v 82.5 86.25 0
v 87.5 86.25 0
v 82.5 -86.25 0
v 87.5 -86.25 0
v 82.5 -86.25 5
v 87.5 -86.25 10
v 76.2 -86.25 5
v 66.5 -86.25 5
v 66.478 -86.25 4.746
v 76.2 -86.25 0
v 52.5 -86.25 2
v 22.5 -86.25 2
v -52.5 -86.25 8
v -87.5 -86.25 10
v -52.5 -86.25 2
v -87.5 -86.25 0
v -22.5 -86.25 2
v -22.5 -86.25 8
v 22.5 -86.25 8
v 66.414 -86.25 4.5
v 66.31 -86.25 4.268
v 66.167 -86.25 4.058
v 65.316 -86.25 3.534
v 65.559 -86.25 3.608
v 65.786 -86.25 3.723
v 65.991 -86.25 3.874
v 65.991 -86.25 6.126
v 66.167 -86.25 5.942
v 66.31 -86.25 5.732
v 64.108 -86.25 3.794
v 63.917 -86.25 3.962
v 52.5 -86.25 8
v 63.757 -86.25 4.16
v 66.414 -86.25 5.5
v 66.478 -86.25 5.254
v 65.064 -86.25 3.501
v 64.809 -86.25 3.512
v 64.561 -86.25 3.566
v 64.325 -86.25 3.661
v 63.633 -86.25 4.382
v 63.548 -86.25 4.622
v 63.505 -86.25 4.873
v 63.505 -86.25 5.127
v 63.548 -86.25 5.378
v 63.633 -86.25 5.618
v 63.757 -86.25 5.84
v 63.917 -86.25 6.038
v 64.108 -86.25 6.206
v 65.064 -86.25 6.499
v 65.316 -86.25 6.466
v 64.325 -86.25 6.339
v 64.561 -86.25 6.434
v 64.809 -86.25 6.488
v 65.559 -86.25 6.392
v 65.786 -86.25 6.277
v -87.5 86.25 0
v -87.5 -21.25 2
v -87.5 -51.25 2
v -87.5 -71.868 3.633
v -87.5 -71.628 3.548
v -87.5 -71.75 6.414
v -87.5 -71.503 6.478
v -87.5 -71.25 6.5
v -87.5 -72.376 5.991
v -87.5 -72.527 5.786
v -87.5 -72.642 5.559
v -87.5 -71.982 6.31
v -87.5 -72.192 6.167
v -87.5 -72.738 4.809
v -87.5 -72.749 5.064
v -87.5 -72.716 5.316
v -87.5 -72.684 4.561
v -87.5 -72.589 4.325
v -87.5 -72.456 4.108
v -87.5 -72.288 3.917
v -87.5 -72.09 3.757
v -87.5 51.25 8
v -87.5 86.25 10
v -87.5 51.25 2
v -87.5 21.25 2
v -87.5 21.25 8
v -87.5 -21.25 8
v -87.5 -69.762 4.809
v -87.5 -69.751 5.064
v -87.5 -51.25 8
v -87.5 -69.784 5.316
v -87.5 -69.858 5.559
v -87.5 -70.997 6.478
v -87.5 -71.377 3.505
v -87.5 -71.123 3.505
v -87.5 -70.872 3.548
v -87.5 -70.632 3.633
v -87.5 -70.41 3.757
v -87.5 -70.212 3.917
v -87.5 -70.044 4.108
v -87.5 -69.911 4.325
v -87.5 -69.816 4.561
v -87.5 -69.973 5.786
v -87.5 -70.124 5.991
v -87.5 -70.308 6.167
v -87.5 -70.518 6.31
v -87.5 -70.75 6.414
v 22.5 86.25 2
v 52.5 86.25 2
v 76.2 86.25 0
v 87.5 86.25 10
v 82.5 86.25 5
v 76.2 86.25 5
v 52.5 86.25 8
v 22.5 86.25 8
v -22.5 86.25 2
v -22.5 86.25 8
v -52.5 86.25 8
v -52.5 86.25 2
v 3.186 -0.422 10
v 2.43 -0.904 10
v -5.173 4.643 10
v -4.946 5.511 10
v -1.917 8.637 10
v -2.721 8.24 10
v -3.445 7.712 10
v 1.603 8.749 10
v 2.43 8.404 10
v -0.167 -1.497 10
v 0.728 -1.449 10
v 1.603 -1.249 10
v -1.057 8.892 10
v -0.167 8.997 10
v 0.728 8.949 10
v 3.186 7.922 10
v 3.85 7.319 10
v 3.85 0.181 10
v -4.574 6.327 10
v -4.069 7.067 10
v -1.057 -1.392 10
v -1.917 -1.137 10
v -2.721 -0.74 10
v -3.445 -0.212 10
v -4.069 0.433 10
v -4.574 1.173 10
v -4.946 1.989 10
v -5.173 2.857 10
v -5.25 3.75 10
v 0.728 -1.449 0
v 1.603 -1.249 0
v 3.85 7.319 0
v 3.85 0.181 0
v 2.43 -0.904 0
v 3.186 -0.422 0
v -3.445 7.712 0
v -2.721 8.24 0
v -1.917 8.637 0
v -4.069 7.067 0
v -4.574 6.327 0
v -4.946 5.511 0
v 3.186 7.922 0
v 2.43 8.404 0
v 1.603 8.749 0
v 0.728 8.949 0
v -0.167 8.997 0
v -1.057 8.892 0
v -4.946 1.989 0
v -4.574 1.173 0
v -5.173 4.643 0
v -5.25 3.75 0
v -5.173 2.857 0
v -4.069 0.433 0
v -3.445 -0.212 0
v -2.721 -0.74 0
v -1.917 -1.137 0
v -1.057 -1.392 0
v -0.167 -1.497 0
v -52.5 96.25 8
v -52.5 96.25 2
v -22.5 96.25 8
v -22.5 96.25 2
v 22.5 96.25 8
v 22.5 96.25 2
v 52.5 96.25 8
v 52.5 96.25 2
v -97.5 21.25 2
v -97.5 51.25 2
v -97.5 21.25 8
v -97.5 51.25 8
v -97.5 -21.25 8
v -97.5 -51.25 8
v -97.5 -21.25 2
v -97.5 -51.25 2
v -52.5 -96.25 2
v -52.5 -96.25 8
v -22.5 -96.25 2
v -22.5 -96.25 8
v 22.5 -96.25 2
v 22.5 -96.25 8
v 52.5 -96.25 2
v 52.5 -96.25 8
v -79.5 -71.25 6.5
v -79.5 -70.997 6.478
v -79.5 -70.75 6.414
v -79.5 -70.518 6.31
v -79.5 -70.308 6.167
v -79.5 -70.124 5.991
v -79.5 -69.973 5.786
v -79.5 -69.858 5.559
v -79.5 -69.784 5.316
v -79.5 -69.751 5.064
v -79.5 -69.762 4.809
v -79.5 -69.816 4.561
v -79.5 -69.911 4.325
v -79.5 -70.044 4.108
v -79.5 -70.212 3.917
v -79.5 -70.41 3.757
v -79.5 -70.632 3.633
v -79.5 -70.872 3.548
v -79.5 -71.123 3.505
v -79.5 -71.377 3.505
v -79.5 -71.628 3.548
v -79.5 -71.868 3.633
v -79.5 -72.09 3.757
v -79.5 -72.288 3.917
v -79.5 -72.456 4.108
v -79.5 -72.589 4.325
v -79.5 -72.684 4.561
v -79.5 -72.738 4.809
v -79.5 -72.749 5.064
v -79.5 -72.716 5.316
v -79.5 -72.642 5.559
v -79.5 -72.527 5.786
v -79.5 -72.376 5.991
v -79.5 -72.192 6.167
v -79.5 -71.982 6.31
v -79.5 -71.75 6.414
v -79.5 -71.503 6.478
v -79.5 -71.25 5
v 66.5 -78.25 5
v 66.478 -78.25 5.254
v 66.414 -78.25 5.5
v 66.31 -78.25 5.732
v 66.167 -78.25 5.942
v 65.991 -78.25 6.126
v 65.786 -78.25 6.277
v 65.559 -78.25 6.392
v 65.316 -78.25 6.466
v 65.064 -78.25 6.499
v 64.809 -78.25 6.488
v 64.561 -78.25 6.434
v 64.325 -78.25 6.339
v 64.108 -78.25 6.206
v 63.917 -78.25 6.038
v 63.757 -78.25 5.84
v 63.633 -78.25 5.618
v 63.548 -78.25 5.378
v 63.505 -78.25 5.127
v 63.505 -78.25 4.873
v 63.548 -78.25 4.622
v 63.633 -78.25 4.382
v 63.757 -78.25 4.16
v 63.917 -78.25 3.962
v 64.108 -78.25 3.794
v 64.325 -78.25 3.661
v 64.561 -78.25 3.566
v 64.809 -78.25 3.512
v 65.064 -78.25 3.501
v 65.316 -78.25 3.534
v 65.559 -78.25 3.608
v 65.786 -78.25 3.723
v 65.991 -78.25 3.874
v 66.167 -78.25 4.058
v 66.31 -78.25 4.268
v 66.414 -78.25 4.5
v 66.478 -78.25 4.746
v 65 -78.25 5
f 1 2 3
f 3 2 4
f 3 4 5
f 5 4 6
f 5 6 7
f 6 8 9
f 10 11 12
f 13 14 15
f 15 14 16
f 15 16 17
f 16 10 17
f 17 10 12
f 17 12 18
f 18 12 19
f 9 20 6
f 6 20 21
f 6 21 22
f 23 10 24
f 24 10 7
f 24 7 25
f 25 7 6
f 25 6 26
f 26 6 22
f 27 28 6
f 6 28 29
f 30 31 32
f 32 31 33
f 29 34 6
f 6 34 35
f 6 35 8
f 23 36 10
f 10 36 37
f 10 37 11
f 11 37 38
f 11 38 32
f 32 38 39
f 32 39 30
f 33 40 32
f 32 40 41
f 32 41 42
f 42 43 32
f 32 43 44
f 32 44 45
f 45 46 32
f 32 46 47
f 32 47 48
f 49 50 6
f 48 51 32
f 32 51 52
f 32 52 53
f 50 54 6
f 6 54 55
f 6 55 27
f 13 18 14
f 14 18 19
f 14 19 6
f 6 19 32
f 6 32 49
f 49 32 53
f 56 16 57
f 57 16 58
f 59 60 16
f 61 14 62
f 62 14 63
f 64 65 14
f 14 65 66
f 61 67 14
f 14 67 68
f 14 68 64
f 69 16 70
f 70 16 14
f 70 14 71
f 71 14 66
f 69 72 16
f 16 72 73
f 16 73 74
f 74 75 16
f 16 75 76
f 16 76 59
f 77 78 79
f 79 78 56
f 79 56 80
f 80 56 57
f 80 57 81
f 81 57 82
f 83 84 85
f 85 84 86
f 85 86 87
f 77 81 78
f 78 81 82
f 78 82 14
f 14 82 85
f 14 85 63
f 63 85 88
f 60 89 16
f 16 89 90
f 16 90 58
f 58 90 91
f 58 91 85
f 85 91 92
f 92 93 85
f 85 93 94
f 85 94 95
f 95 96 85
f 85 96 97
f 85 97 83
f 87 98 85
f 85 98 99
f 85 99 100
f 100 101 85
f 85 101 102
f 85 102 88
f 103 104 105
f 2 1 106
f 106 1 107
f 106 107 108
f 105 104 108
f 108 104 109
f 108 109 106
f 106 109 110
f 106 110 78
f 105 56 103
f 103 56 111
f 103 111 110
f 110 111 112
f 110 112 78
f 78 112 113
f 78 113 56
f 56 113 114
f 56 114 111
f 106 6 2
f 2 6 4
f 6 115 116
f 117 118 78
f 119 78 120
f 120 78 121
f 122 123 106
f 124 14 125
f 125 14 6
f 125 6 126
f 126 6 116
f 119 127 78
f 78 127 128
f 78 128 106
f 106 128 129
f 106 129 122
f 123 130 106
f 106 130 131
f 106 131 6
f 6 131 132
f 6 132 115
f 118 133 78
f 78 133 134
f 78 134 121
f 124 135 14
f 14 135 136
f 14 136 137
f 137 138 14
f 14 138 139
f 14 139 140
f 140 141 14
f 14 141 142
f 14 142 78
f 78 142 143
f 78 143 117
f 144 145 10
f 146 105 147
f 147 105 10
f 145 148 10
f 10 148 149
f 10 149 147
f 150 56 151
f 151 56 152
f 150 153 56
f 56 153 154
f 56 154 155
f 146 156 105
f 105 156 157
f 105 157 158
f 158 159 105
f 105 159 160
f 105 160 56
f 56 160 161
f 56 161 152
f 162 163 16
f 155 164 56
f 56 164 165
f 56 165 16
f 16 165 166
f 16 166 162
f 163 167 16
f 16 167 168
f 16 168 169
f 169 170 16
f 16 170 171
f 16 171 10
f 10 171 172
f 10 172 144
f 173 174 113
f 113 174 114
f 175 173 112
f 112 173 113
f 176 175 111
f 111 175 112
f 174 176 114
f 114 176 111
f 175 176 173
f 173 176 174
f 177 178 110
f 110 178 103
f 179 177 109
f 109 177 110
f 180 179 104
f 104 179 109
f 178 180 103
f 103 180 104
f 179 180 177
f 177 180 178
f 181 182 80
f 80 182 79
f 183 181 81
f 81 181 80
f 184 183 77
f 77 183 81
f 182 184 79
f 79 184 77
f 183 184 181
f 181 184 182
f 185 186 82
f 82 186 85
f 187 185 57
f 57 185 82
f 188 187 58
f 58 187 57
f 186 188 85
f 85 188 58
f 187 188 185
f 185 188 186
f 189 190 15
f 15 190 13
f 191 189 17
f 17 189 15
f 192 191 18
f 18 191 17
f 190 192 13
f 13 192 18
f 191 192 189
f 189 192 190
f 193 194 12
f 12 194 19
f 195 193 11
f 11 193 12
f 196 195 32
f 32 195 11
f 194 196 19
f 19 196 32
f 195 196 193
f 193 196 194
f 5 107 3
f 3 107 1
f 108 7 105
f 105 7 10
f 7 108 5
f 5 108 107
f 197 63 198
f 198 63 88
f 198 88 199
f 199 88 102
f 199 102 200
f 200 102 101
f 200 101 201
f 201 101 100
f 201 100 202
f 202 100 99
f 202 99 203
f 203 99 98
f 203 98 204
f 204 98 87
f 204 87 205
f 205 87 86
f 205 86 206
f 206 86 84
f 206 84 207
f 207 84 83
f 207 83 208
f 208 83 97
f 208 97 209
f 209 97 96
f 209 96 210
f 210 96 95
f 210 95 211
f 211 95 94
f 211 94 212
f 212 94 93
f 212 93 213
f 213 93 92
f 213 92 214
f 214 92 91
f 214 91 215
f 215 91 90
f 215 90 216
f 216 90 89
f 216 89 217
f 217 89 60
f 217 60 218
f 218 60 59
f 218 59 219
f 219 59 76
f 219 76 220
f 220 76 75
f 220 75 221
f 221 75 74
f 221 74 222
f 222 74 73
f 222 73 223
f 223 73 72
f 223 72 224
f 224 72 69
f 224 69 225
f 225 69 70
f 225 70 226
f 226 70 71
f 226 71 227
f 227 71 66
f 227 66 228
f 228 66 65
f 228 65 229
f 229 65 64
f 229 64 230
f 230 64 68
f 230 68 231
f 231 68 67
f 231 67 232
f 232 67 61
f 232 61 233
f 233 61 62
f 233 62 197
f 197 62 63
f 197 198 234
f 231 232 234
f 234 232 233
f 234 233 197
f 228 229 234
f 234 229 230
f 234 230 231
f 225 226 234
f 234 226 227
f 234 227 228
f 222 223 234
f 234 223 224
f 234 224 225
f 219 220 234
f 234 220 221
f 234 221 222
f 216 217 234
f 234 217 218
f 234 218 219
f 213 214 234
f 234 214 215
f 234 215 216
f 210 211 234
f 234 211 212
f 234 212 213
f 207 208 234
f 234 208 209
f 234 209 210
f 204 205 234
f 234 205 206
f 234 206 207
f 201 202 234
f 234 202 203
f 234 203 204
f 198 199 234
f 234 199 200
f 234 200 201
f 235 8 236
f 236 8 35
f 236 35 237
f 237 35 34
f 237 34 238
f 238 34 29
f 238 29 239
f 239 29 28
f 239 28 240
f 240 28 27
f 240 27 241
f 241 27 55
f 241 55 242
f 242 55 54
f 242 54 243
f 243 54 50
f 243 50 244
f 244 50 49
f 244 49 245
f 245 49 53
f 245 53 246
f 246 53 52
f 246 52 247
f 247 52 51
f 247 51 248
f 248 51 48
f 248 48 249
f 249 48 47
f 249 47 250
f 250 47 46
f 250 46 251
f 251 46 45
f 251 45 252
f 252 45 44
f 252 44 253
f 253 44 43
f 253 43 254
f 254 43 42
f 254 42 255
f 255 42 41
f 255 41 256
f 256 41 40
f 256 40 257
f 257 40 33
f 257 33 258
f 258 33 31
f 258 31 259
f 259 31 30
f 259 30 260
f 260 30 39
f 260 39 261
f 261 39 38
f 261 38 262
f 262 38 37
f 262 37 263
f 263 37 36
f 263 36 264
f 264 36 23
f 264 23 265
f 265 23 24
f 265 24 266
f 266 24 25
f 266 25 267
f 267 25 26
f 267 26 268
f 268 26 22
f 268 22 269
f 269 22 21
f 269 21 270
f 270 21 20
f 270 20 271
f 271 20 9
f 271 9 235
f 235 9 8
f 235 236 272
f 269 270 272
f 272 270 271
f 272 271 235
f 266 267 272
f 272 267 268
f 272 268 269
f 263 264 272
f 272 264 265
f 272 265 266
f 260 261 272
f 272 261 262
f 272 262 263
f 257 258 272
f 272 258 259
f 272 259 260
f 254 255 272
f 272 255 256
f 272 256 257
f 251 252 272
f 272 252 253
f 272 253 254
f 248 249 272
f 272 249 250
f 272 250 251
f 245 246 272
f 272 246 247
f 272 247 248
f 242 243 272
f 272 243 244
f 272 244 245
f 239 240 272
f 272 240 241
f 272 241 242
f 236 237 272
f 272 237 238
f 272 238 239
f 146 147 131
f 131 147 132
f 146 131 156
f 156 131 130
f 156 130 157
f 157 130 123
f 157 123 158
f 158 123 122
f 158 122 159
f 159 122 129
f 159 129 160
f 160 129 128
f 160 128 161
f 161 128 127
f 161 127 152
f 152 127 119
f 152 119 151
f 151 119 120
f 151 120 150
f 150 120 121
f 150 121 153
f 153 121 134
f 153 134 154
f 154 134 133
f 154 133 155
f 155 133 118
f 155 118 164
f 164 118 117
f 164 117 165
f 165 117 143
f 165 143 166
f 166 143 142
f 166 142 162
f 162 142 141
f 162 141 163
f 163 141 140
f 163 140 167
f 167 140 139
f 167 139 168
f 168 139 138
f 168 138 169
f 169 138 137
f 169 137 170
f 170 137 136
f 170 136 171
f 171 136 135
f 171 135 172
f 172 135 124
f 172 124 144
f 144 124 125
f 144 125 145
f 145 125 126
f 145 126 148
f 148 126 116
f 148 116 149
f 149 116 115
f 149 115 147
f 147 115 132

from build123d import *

# Parameters (mm, degrees)
ESBO_O1_W                = 175
ESBO_O1_H                = 172.5
RESSALTO_EXTRUS_O1_DEPTH = 10
ESBO_O5_W                = 30
ESBO_O5_H                = 6
RESSALTO_EXTRUS_O5_DEPTH = 10
ESBO_O6_W                = 6
ESBO_O6_H                = 30
RESSALTO_EXTRUS_O6_DEPTH = 10
ESBO_O7_W                = 30
ESBO_O7_H                = 6
RESSALTO_EXTRUS_O7_DEPTH = 10
ESBO_O8_W                = 6.3
ESBO_O8_H                = 172.5
CORTE_EXTRUS_O1_DEPTH    = 5
ESBO_O9_R                = 1.5
CORTE_EXTRUS_O2_DEPTH    = 8
ESBO_O10_R               = 1.5
CORTE_EXTRUS_O3_DEPTH    = 8
CORTE_EXTRUS_O4_DEPTH    = 11


with BuildPart() as part:
    # Esboço1 → Ressalto-extrusão1 (new body)
    with BuildSketch(Plane.XY):
        Rectangle(ESBO_O1_W, ESBO_O1_H)
    extrude(amount=RESSALTO_EXTRUS_O1_DEPTH)

    # Esboço5 → Ressalto-extrusão5 (add)
    with BuildSketch(Plane(origin=(0, 86.25, 0), x_dir=(1, 0, 0), z_dir=(0, 1, 0))):
        with Locations((-37.5, -5)):
            Rectangle(ESBO_O5_W, ESBO_O5_H)
        with Locations((37.5, -5)):
            Rectangle(ESBO_O5_W, ESBO_O5_H)
    extrude(amount=RESSALTO_EXTRUS_O5_DEPTH)

    # Esboço6 → Ressalto-extrusão6 (add)
    with BuildSketch(Plane.ZY.offset(87.5)):
        with Locations((5, 36.25)):
            Rectangle(ESBO_O6_W, ESBO_O6_H)
        with Locations((5, -36.25)):
            Rectangle(ESBO_O6_W, ESBO_O6_H)
    extrude(amount=RESSALTO_EXTRUS_O6_DEPTH)

    # Esboço7 → Ressalto-extrusão7 (add)
    with BuildSketch(Plane.XZ.offset(86.25)):
        with Locations((-37.5, 5)):
            Rectangle(ESBO_O7_W, ESBO_O7_H)
        with Locations((37.5, 5)):
            Rectangle(ESBO_O7_W, ESBO_O7_H)
    extrude(amount=RESSALTO_EXTRUS_O7_DEPTH)

    # Esboço8 → Corte-extrusão1 (cut)
    with BuildSketch(Plane(origin=(0, 0, 0), x_dir=(-1, 0, 0), z_dir=(0, 0, -1))):
        with Locations((-79.35, 0)):
            Rectangle(ESBO_O8_W, ESBO_O8_H)
    extrude(amount=-CORTE_EXTRUS_O1_DEPTH, mode=Mode.SUBTRACT)

    # Esboço9 → Corte-extrusão2 (cut)
    with BuildSketch(Plane.ZY.offset(87.5)):
        with Locations((5, -71.25)):
            Circle(ESBO_O9_R)
    extrude(amount=-CORTE_EXTRUS_O2_DEPTH, mode=Mode.SUBTRACT)

    # Esboço10 → Corte-extrusão3 (cut)
    with BuildSketch(Plane.XZ.offset(86.25)):
        with Locations((65, 5)):
            Circle(ESBO_O10_R)
    extrude(amount=-CORTE_EXTRUS_O3_DEPTH, mode=Mode.SUBTRACT)

    # Esboço11 → Corte-extrusão4 (cut, through all)
    with BuildSketch(Plane.XY.offset(10)):
        with BuildLine():
            ThreePointArc((3.85, 7.31931366), (-5.25, 3.75), (3.85, 0.18068634))
            Line((3.85, 0.18068634), (3.85, 7.31931366))
        make_face()
    extrude(amount=-CORTE_EXTRUS_O4_DEPTH, mode=Mode.SUBTRACT)


solid = part.part
